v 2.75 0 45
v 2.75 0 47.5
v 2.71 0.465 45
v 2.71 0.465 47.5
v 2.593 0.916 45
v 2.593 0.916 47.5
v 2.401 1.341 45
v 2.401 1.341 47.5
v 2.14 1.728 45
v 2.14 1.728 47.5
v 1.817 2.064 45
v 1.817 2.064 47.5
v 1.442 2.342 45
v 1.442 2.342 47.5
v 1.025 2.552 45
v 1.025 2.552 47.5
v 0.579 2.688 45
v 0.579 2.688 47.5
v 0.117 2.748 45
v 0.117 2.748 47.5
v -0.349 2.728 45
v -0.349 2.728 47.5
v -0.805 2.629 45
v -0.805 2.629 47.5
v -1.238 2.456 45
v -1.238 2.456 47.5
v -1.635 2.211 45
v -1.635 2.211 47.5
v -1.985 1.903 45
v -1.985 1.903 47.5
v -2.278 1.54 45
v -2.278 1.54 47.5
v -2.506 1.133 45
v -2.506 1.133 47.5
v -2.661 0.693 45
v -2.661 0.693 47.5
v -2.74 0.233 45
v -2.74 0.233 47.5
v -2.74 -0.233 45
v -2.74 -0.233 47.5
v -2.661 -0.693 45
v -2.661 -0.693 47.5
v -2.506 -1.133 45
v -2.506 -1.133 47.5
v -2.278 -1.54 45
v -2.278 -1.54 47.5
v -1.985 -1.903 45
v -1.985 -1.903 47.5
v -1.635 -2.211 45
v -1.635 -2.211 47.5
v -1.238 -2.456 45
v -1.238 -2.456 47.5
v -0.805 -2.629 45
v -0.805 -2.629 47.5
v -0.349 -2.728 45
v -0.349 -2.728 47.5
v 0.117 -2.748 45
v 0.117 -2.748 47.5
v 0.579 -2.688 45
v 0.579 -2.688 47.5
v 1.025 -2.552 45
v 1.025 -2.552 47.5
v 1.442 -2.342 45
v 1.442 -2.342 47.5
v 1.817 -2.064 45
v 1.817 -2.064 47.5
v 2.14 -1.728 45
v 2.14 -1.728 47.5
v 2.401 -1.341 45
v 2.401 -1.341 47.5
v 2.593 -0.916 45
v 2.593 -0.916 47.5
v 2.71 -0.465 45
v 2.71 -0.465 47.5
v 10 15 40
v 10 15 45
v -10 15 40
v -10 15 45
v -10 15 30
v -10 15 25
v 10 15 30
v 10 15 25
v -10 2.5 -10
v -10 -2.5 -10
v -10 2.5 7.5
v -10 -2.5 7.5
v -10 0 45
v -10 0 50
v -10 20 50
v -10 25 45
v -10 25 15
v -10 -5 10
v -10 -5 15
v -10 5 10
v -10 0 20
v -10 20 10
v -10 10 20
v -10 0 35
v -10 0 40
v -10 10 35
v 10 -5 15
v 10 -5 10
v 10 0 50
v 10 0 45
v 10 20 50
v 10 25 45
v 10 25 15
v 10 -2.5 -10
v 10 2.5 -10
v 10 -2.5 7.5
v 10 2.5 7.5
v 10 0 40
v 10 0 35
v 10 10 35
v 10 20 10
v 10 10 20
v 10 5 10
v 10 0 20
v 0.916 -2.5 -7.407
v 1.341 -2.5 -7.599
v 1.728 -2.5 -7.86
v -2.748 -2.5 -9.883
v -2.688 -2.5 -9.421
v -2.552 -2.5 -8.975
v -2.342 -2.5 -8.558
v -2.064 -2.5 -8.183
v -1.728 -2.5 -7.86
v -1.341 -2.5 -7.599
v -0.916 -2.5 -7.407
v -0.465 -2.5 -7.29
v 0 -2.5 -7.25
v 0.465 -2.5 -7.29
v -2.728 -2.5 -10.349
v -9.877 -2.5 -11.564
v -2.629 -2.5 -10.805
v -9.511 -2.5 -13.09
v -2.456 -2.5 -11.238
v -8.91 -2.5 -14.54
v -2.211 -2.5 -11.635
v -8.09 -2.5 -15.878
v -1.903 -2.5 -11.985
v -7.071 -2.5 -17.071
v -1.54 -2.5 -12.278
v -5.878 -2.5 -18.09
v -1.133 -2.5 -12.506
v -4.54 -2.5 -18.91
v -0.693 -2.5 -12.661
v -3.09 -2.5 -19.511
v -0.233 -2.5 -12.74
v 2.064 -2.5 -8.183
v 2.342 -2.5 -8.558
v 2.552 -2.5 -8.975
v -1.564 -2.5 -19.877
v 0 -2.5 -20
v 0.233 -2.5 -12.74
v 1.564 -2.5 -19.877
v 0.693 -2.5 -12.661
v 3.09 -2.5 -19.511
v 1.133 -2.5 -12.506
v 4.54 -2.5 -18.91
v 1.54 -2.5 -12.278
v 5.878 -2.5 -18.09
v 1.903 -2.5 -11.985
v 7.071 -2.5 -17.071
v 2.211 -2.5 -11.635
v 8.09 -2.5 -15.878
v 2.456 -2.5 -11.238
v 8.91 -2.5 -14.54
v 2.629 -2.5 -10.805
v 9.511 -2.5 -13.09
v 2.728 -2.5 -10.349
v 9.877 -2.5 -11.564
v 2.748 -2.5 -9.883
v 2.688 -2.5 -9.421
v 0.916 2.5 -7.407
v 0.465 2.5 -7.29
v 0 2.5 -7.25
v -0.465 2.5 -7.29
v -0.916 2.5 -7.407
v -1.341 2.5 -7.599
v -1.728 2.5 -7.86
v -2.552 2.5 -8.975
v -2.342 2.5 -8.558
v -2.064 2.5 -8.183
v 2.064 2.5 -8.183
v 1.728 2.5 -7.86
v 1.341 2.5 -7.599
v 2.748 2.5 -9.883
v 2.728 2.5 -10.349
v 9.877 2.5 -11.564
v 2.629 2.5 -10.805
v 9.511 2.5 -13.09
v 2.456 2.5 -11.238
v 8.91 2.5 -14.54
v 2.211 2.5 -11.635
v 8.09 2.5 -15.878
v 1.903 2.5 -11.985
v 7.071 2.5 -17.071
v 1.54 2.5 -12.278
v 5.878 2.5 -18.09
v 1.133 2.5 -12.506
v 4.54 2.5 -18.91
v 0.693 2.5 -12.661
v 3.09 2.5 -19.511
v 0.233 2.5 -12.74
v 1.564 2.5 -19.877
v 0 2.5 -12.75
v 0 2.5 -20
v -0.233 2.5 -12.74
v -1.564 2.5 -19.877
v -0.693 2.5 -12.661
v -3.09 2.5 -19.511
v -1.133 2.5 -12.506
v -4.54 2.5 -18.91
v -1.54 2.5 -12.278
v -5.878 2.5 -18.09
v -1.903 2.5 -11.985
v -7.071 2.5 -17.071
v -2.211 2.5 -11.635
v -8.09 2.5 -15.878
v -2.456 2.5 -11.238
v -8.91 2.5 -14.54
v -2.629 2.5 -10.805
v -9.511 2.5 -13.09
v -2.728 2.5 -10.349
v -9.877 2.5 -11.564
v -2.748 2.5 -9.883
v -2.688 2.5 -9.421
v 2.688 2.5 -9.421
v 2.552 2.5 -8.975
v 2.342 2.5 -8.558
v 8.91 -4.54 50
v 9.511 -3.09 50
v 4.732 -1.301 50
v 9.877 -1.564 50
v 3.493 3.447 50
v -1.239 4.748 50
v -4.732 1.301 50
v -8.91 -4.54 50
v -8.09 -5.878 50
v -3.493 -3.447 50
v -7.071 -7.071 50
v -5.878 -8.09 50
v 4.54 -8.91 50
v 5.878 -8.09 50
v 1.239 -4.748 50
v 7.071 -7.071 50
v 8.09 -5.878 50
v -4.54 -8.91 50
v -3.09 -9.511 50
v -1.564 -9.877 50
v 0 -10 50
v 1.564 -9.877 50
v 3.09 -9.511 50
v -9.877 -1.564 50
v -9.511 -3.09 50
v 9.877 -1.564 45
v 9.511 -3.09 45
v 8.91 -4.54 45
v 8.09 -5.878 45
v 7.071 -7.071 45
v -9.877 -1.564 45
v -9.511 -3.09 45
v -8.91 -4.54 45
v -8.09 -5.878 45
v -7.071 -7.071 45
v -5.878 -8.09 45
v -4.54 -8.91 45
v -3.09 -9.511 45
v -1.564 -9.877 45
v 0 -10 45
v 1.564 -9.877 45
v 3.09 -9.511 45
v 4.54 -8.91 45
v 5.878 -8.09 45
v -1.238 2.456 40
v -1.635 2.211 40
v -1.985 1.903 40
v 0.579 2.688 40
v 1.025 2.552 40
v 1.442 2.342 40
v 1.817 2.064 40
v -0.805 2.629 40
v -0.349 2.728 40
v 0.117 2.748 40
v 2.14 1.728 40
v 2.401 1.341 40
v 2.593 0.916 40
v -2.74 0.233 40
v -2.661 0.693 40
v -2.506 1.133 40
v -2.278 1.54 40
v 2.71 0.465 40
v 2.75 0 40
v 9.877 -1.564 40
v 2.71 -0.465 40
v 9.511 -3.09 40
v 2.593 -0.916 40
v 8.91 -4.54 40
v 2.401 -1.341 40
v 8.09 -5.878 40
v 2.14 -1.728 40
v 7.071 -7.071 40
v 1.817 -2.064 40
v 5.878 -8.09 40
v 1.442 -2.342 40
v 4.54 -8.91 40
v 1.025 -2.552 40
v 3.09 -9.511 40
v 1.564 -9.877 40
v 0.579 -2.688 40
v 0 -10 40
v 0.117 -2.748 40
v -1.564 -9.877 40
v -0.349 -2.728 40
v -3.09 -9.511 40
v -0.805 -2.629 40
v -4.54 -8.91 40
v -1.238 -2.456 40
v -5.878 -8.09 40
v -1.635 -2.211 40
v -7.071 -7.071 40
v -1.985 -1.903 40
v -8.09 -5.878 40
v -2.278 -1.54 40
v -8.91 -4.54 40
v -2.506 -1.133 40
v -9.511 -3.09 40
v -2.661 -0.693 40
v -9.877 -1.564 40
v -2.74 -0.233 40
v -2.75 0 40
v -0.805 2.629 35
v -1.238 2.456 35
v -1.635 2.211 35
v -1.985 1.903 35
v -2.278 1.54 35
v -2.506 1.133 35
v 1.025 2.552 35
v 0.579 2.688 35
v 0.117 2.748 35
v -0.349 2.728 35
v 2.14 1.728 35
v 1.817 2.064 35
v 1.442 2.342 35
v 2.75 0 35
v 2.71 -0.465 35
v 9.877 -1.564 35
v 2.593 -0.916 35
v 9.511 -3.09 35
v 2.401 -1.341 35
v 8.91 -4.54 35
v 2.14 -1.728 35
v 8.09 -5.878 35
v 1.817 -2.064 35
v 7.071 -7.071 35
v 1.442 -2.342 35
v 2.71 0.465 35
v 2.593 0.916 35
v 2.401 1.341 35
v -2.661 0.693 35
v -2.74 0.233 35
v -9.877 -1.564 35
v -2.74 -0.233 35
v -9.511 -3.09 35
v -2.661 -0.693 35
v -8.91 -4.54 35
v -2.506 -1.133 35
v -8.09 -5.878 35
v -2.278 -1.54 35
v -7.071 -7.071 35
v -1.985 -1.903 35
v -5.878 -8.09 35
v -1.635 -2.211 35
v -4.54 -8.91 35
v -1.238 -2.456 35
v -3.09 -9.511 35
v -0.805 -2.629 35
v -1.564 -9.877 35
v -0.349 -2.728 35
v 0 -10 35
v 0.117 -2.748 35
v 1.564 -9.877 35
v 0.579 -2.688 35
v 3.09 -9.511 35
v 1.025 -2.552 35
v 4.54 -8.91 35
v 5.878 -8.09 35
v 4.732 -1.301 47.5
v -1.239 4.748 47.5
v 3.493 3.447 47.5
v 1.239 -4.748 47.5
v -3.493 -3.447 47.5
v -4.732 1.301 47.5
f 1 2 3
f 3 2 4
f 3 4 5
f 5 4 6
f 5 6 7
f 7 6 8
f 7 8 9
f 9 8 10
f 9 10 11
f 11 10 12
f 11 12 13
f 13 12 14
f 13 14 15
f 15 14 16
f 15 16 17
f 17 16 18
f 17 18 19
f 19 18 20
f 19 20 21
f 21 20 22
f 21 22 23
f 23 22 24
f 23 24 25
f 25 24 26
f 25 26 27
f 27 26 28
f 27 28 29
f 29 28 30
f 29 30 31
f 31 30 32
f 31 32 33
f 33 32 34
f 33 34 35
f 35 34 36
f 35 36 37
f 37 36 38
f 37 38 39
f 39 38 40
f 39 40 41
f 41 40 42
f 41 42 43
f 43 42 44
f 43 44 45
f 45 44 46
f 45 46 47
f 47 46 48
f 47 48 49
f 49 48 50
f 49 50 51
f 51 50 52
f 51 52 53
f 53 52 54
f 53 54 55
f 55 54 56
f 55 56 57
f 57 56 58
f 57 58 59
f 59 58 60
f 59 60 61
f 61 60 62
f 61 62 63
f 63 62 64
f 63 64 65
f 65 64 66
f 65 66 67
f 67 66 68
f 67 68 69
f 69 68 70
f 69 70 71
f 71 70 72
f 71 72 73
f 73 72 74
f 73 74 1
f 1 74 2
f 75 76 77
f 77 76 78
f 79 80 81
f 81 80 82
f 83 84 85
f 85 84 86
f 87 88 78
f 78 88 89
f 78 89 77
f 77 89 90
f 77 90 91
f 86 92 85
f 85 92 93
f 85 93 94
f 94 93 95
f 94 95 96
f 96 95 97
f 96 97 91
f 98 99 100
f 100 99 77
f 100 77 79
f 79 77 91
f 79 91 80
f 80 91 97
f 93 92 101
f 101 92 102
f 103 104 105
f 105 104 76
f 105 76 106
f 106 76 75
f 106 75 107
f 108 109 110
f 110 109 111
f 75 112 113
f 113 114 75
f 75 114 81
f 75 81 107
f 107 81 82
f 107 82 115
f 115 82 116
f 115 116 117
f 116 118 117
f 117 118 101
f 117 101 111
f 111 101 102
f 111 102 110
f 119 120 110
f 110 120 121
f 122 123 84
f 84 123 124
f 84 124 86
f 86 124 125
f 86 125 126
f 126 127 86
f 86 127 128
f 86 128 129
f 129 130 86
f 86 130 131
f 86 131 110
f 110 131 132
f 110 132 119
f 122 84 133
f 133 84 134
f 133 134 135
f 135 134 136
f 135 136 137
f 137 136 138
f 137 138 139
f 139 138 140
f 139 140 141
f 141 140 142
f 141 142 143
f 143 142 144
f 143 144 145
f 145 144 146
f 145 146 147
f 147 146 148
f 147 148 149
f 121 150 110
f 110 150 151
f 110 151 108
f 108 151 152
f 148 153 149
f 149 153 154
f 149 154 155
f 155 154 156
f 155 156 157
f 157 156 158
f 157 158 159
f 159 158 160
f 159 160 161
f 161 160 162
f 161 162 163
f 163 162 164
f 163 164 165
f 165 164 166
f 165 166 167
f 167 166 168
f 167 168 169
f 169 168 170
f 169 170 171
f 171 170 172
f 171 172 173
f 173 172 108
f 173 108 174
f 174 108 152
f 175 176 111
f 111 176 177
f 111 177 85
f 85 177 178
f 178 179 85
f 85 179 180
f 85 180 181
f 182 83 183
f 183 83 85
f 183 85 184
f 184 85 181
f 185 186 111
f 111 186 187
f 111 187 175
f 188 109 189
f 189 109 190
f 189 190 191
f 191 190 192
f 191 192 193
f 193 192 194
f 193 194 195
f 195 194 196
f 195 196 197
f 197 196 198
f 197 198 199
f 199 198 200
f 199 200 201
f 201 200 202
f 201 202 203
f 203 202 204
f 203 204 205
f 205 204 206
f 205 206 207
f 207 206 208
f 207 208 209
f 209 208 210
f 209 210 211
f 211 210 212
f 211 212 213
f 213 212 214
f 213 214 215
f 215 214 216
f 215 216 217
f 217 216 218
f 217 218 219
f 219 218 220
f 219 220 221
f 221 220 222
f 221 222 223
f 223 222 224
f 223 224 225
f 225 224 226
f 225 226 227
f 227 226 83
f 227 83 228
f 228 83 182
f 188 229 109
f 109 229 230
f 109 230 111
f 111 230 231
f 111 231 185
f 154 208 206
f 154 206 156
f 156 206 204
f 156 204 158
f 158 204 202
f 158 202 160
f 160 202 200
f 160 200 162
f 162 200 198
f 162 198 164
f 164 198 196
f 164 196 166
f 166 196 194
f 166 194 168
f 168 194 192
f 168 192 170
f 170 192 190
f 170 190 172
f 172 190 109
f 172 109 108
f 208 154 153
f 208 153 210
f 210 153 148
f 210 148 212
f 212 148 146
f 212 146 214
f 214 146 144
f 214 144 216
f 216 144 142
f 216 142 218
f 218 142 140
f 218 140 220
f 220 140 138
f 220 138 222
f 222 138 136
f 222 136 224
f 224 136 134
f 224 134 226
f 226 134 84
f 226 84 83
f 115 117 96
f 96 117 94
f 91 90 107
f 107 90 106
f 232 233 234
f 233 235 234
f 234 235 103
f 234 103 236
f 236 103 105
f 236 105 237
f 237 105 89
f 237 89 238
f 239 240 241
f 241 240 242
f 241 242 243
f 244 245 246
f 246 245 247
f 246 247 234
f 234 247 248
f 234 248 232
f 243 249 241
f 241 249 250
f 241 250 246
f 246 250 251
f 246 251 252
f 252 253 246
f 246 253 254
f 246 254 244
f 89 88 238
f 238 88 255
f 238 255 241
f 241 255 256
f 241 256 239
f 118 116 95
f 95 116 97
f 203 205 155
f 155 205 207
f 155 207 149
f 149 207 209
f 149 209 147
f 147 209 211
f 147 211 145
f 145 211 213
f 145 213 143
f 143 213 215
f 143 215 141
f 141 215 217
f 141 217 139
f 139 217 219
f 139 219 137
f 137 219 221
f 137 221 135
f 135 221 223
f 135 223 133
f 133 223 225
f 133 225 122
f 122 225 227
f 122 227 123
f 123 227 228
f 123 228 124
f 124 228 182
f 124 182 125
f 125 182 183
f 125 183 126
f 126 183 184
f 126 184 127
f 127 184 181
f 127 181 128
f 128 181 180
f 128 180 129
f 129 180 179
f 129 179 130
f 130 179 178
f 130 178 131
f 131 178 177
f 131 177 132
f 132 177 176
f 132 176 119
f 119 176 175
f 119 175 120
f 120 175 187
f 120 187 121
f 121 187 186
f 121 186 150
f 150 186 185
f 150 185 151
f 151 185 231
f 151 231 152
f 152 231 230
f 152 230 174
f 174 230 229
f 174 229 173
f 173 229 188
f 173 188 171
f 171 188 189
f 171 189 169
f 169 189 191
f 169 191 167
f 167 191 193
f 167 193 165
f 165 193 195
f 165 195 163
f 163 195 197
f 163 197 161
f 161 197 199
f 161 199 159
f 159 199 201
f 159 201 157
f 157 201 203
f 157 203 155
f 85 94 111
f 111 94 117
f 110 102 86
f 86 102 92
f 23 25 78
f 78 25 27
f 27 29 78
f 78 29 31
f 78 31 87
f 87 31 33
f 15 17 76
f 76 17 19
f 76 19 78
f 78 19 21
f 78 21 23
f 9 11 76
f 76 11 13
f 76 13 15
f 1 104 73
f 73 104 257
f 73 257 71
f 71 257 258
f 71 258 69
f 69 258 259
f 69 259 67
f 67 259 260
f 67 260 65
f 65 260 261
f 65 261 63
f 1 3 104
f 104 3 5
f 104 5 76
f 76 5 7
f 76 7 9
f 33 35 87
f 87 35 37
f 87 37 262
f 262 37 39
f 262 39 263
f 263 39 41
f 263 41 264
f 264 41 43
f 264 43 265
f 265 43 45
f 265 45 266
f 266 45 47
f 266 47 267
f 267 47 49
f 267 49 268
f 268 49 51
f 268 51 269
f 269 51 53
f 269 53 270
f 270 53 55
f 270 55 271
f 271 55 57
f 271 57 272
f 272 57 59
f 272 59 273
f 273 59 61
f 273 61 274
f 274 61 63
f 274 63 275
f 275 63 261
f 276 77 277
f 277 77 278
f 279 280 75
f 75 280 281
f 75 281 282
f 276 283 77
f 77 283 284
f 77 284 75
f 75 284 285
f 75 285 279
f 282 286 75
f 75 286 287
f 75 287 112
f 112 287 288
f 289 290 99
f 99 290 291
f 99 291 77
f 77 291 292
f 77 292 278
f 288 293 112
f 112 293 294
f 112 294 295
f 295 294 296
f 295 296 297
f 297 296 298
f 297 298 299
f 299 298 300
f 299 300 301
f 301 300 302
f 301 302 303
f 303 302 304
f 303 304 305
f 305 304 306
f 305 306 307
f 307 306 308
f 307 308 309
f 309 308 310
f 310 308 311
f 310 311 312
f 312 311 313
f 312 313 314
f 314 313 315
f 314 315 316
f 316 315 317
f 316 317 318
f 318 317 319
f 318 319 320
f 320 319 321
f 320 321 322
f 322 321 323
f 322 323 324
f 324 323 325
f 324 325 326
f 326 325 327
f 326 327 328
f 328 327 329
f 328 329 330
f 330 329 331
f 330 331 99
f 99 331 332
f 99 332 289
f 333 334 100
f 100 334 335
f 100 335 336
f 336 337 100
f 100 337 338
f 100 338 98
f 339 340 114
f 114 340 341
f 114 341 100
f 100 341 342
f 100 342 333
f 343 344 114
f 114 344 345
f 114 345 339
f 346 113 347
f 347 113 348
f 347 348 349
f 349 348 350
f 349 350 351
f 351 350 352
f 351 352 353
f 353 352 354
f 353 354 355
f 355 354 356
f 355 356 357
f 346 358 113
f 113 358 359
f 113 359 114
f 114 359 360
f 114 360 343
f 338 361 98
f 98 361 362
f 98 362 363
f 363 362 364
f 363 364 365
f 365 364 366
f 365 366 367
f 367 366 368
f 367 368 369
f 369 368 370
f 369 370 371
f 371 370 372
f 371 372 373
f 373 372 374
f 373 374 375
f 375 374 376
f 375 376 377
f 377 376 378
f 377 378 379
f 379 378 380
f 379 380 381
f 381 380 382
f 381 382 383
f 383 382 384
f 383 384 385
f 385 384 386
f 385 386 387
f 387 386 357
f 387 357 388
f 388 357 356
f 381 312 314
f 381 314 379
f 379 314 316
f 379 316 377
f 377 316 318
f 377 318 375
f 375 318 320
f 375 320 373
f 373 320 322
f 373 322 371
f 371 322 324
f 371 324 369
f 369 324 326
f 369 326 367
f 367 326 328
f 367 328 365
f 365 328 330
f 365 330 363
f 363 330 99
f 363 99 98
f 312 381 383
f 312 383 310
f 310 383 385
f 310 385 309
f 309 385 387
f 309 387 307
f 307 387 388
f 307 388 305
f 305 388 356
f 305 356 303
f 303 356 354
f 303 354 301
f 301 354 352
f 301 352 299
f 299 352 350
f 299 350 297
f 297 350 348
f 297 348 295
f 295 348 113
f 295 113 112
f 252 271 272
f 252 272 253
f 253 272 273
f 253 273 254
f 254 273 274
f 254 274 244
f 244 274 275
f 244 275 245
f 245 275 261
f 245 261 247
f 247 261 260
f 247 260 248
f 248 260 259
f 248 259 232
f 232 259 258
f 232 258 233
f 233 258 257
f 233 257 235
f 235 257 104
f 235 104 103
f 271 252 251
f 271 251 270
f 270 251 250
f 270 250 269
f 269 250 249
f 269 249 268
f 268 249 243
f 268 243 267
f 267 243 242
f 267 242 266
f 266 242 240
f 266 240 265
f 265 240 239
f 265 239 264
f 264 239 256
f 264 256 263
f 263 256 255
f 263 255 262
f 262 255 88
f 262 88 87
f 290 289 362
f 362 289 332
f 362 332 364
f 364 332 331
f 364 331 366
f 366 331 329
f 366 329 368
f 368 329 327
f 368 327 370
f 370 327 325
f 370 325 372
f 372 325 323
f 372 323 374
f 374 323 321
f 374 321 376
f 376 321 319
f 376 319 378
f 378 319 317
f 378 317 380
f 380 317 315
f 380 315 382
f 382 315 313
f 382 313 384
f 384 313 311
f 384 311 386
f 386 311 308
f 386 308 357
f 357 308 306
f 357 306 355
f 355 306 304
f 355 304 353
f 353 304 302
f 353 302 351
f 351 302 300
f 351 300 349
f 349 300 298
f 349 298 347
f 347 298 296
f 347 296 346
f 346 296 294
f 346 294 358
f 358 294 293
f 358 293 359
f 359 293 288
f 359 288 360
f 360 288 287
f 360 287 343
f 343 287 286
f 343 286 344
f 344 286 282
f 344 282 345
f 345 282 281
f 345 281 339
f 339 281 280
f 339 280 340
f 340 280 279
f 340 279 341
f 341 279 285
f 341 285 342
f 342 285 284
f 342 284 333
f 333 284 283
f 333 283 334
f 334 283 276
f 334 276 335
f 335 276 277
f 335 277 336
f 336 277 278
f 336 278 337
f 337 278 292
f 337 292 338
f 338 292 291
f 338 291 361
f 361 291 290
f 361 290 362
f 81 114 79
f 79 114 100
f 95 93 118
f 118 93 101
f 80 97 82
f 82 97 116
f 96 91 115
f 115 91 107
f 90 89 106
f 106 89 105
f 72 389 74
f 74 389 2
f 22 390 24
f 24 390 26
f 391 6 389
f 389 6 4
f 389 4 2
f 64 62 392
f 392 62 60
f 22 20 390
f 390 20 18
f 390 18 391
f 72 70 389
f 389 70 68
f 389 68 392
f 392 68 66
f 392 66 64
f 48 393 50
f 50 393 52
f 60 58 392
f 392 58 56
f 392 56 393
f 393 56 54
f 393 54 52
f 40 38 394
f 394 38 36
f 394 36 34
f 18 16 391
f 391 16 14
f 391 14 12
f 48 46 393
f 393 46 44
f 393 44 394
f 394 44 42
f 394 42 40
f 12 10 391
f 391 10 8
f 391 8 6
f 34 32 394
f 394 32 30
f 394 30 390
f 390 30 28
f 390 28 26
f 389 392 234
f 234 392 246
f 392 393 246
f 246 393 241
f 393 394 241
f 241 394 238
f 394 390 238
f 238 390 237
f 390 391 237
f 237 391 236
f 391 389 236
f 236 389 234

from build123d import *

# Parameters (mm, degrees)
SKETCH1_W               = 20
SKETCH1_H               = 10
BOSS_EXTRUDE1_DEPTH     = 10
SKETCH3_W               = 20
SKETCH3_H               = 5
BOSS_EXTRUDE2_DEPTH     = 20
FILLET1_R               = 10
BOSS_EXTRUDE3_DEPTH     = 20
CUT_EXTRUDE1_DEPTH      = 56.733742024
CUT_EXTRUDE1_DEPTH_BACK = 56.733742024
SKETCH5_R               = 2.75
CHAMFER1_SIZE           = 10
SKETCH6_W               = 20
SKETCH6_H               = 5
BOSS_EXTRUDE4_DEPTH     = 25
FILLET2_R               = 10
CUT_EXTRUDE2_DEPTH      = 76
CUT_EXTRUDE2_DEPTH_BACK = 15
SKETCH7_R               = 2.75
CHAMFER3_SIZE           = 5
CUT_EXTRUDE3_DEPTH      = 2.5


# Some blends are built 0.0001 mm under size
with BuildPart() as part:
    # Sketch1 → Boss-Extrude1 (new body)
    with BuildSketch(Plane.XY):
        Rectangle(SKETCH1_W, SKETCH1_H)
    extrude(amount=BOSS_EXTRUDE1_DEPTH)

    # Sketch3 → Boss-Extrude2 (add)
    with BuildSketch(Plane(origin=(0, 0, 0), x_dir=(-1, 0, 0), z_dir=(0, 0, -1))):
        Rectangle(SKETCH3_W, SKETCH3_H)
    extrude(amount=BOSS_EXTRUDE2_DEPTH)

    # Fillet1
    fillet1_edges = [part.edges().sort_by_distance(p)[0] for p in [
        (-10, 0, -20),
        (10, 0, -20),
    ]]
    fillet(fillet1_edges, radius=FILLET1_R - 0.0001)  # a hair under: the kernel refuses the full size

    # Sketch4 → Boss-Extrude3 (add)
    with BuildSketch(Plane.ZY.offset(10)):
        Polygon((20, -5), (20, 15), (50, 15), (50, 25), (10, 25), (10, -5), align=None)
    extrude(amount=-BOSS_EXTRUDE3_DEPTH)

    # Sketch5 → Cut-Extrude1 (cut, two sides: drawn at the far end of the back side and taken through both)
    with BuildSketch(Plane(origin=(0, 2.5, 0), x_dir=(1, 0, 0), z_dir=(0, 1, 0)).offset(-CUT_EXTRUDE1_DEPTH_BACK)):
        with Locations(Location((0, 10, 0), (0, 0, 270))):
            Circle(SKETCH5_R)
    extrude(amount=CUT_EXTRUDE1_DEPTH + CUT_EXTRUDE1_DEPTH_BACK, mode=Mode.SUBTRACT)

    # Chamfer1
    # the kernel refuses this chamfer: 10 mm, written as the material it takes off along each edge
    with BuildSketch(Plane(origin=(35.71682988, 5, 0), x_dir=(0, -0.9996219169112968, -0.027495876610586372), z_dir=(-1, 0, 0))) as chamfer1_piece_1_section:
        Polygon((CHAMFER1_SIZE * 0.999621916911, CHAMFER1_SIZE * 0.0274958766106), (-CHAMFER1_SIZE * 0.0274958766106, CHAMFER1_SIZE * 0.999621916911), (0, 0), align=None)
    chamfer1_piece_1 = extrude(amount=71.433659759, mode=Mode.PRIVATE)
    chamfer1_piece_1 = split(chamfer1_piece_1, bisect_by=Plane(origin=(0, -2.5, 0.578931494), z_dir=(0, -1, 0)), keep=Keep.TOP, mode=Mode.PRIVATE)
    add(chamfer1_piece_1, mode=Mode.SUBTRACT)
    with BuildSketch(Plane(origin=(35.71682988, 5, 0), x_dir=(0, -0.9996219169112968, -0.027495876610586372), z_dir=(-1, 0, 0))) as chamfer1_piece_2_section:
        Polygon((CHAMFER1_SIZE * 0.999621916911, CHAMFER1_SIZE * 0.0274958766106), (-CHAMFER1_SIZE * 0.0274958766106, CHAMFER1_SIZE * 0.999621916911), (0, 0), align=None)
    chamfer1_piece_2 = extrude(amount=71.433659759, mode=Mode.PRIVATE)
    chamfer1_piece_2 = split(chamfer1_piece_2, bisect_by=Plane(origin=(0, 2.5, 4.466280687), z_dir=(0, 1, 0)), keep=Keep.TOP, mode=Mode.PRIVATE)
    chamfer1_piece_2 = split(chamfer1_piece_2, bisect_by=Plane(origin=(0, 3.939233337, 10), z_dir=(0, 0, -1)), keep=Keep.TOP, mode=Mode.PRIVATE)
    add(chamfer1_piece_2, mode=Mode.SUBTRACT)
    with BuildSketch(Plane(origin=(-35.71682988, -5, 0), x_dir=(0, -0.027495876610586403, 0.9996219169112968), z_dir=(1, 0, 0))) as chamfer1_piece_3_section:
        Polygon((CHAMFER1_SIZE * 0.999621916911, -CHAMFER1_SIZE * 0.0274958766106), (-CHAMFER1_SIZE * 0.0274958766106, -CHAMFER1_SIZE * 0.999621916911), (0, 0), align=None)
    chamfer1_piece_3 = extrude(amount=71.433659759, mode=Mode.PRIVATE)
    chamfer1_piece_3 = split(chamfer1_piece_3, bisect_by=Plane(origin=(0, -2.5, 4.487529346), z_dir=(0, -1, 0)), keep=Keep.TOP, mode=Mode.PRIVATE)
    add(chamfer1_piece_3, mode=Mode.SUBTRACT)
    with BuildSketch(Plane(origin=(-35.71682988, -5, 0), x_dir=(0, -0.027495876610586403, 0.9996219169112968), z_dir=(1, 0, 0))) as chamfer1_piece_4_section:
        Polygon((CHAMFER1_SIZE * 0.999621916911, -CHAMFER1_SIZE * 0.0274958766106), (-CHAMFER1_SIZE * 0.0274958766106, -CHAMFER1_SIZE * 0.999621916911), (0, 0), align=None)
    chamfer1_piece_4 = extrude(amount=71.433659759, mode=Mode.PRIVATE)
    chamfer1_piece_4 = split(chamfer1_piece_4, bisect_by=Plane(origin=(0, 2.5, 0.578931494), z_dir=(0, 1, 0)), keep=Keep.TOP, mode=Mode.PRIVATE)
    add(chamfer1_piece_4, mode=Mode.SUBTRACT)

    # Sketch6 → Boss-Extrude4 (add)
    with BuildSketch(Plane.XZ.offset(-15)):
        with Locations((0, 37.5)):
            Rectangle(SKETCH6_W, SKETCH6_H)
        with Locations((0, 47.5)):
            Rectangle(SKETCH6_W, SKETCH6_H)
    extrude(amount=BOSS_EXTRUDE4_DEPTH)

    # Fillet2
    fillet2_edges = [part.edges().sort_by_distance(p)[0] for p in [
        (10, -10, 37.5),
        (-10, -10, 37.5),
        (-10, -10, 47.5),
        (10, -10, 47.5),
    ]]
    fillet(fillet2_edges, radius=FILLET2_R - 0.0001)  # a hair under: the kernel refuses the full size

    # Sketch7 → Cut-Extrude2 (cut, two sides: drawn at the far end of the back side and taken through both)
    with BuildSketch(Plane.XY.offset(50).offset(-CUT_EXTRUDE2_DEPTH_BACK)):
        Circle(SKETCH7_R)
    extrude(amount=CUT_EXTRUDE2_DEPTH + CUT_EXTRUDE2_DEPTH_BACK, mode=Mode.SUBTRACT)

    # Chamfer3
    chamfer3_edges = [part.edges().sort_by_distance(p)[0] for p in [
        (0, 15, 35),
        (0, 25, 10),
        (0, 25, 50),
        (0, 15, 20),
        (0, -5, 20),
    ]]
    chamfer(chamfer3_edges, length=CHAMFER3_SIZE)

    # Sketch8 → Cut-Extrude3 (cut)
    with BuildSketch(Plane.XY.offset(50)):
        Polygon((4.731883381, -1.301004613), (3.492644735, 3.447428909), (-1.239238646, 4.748433522), (-4.731883381, 1.301004613), (-3.492644735, -3.447428909), (1.239238646, -4.748433522), align=None)
    extrude(amount=-CUT_EXTRUDE3_DEPTH, mode=Mode.SUBTRACT)


solid = part.part
